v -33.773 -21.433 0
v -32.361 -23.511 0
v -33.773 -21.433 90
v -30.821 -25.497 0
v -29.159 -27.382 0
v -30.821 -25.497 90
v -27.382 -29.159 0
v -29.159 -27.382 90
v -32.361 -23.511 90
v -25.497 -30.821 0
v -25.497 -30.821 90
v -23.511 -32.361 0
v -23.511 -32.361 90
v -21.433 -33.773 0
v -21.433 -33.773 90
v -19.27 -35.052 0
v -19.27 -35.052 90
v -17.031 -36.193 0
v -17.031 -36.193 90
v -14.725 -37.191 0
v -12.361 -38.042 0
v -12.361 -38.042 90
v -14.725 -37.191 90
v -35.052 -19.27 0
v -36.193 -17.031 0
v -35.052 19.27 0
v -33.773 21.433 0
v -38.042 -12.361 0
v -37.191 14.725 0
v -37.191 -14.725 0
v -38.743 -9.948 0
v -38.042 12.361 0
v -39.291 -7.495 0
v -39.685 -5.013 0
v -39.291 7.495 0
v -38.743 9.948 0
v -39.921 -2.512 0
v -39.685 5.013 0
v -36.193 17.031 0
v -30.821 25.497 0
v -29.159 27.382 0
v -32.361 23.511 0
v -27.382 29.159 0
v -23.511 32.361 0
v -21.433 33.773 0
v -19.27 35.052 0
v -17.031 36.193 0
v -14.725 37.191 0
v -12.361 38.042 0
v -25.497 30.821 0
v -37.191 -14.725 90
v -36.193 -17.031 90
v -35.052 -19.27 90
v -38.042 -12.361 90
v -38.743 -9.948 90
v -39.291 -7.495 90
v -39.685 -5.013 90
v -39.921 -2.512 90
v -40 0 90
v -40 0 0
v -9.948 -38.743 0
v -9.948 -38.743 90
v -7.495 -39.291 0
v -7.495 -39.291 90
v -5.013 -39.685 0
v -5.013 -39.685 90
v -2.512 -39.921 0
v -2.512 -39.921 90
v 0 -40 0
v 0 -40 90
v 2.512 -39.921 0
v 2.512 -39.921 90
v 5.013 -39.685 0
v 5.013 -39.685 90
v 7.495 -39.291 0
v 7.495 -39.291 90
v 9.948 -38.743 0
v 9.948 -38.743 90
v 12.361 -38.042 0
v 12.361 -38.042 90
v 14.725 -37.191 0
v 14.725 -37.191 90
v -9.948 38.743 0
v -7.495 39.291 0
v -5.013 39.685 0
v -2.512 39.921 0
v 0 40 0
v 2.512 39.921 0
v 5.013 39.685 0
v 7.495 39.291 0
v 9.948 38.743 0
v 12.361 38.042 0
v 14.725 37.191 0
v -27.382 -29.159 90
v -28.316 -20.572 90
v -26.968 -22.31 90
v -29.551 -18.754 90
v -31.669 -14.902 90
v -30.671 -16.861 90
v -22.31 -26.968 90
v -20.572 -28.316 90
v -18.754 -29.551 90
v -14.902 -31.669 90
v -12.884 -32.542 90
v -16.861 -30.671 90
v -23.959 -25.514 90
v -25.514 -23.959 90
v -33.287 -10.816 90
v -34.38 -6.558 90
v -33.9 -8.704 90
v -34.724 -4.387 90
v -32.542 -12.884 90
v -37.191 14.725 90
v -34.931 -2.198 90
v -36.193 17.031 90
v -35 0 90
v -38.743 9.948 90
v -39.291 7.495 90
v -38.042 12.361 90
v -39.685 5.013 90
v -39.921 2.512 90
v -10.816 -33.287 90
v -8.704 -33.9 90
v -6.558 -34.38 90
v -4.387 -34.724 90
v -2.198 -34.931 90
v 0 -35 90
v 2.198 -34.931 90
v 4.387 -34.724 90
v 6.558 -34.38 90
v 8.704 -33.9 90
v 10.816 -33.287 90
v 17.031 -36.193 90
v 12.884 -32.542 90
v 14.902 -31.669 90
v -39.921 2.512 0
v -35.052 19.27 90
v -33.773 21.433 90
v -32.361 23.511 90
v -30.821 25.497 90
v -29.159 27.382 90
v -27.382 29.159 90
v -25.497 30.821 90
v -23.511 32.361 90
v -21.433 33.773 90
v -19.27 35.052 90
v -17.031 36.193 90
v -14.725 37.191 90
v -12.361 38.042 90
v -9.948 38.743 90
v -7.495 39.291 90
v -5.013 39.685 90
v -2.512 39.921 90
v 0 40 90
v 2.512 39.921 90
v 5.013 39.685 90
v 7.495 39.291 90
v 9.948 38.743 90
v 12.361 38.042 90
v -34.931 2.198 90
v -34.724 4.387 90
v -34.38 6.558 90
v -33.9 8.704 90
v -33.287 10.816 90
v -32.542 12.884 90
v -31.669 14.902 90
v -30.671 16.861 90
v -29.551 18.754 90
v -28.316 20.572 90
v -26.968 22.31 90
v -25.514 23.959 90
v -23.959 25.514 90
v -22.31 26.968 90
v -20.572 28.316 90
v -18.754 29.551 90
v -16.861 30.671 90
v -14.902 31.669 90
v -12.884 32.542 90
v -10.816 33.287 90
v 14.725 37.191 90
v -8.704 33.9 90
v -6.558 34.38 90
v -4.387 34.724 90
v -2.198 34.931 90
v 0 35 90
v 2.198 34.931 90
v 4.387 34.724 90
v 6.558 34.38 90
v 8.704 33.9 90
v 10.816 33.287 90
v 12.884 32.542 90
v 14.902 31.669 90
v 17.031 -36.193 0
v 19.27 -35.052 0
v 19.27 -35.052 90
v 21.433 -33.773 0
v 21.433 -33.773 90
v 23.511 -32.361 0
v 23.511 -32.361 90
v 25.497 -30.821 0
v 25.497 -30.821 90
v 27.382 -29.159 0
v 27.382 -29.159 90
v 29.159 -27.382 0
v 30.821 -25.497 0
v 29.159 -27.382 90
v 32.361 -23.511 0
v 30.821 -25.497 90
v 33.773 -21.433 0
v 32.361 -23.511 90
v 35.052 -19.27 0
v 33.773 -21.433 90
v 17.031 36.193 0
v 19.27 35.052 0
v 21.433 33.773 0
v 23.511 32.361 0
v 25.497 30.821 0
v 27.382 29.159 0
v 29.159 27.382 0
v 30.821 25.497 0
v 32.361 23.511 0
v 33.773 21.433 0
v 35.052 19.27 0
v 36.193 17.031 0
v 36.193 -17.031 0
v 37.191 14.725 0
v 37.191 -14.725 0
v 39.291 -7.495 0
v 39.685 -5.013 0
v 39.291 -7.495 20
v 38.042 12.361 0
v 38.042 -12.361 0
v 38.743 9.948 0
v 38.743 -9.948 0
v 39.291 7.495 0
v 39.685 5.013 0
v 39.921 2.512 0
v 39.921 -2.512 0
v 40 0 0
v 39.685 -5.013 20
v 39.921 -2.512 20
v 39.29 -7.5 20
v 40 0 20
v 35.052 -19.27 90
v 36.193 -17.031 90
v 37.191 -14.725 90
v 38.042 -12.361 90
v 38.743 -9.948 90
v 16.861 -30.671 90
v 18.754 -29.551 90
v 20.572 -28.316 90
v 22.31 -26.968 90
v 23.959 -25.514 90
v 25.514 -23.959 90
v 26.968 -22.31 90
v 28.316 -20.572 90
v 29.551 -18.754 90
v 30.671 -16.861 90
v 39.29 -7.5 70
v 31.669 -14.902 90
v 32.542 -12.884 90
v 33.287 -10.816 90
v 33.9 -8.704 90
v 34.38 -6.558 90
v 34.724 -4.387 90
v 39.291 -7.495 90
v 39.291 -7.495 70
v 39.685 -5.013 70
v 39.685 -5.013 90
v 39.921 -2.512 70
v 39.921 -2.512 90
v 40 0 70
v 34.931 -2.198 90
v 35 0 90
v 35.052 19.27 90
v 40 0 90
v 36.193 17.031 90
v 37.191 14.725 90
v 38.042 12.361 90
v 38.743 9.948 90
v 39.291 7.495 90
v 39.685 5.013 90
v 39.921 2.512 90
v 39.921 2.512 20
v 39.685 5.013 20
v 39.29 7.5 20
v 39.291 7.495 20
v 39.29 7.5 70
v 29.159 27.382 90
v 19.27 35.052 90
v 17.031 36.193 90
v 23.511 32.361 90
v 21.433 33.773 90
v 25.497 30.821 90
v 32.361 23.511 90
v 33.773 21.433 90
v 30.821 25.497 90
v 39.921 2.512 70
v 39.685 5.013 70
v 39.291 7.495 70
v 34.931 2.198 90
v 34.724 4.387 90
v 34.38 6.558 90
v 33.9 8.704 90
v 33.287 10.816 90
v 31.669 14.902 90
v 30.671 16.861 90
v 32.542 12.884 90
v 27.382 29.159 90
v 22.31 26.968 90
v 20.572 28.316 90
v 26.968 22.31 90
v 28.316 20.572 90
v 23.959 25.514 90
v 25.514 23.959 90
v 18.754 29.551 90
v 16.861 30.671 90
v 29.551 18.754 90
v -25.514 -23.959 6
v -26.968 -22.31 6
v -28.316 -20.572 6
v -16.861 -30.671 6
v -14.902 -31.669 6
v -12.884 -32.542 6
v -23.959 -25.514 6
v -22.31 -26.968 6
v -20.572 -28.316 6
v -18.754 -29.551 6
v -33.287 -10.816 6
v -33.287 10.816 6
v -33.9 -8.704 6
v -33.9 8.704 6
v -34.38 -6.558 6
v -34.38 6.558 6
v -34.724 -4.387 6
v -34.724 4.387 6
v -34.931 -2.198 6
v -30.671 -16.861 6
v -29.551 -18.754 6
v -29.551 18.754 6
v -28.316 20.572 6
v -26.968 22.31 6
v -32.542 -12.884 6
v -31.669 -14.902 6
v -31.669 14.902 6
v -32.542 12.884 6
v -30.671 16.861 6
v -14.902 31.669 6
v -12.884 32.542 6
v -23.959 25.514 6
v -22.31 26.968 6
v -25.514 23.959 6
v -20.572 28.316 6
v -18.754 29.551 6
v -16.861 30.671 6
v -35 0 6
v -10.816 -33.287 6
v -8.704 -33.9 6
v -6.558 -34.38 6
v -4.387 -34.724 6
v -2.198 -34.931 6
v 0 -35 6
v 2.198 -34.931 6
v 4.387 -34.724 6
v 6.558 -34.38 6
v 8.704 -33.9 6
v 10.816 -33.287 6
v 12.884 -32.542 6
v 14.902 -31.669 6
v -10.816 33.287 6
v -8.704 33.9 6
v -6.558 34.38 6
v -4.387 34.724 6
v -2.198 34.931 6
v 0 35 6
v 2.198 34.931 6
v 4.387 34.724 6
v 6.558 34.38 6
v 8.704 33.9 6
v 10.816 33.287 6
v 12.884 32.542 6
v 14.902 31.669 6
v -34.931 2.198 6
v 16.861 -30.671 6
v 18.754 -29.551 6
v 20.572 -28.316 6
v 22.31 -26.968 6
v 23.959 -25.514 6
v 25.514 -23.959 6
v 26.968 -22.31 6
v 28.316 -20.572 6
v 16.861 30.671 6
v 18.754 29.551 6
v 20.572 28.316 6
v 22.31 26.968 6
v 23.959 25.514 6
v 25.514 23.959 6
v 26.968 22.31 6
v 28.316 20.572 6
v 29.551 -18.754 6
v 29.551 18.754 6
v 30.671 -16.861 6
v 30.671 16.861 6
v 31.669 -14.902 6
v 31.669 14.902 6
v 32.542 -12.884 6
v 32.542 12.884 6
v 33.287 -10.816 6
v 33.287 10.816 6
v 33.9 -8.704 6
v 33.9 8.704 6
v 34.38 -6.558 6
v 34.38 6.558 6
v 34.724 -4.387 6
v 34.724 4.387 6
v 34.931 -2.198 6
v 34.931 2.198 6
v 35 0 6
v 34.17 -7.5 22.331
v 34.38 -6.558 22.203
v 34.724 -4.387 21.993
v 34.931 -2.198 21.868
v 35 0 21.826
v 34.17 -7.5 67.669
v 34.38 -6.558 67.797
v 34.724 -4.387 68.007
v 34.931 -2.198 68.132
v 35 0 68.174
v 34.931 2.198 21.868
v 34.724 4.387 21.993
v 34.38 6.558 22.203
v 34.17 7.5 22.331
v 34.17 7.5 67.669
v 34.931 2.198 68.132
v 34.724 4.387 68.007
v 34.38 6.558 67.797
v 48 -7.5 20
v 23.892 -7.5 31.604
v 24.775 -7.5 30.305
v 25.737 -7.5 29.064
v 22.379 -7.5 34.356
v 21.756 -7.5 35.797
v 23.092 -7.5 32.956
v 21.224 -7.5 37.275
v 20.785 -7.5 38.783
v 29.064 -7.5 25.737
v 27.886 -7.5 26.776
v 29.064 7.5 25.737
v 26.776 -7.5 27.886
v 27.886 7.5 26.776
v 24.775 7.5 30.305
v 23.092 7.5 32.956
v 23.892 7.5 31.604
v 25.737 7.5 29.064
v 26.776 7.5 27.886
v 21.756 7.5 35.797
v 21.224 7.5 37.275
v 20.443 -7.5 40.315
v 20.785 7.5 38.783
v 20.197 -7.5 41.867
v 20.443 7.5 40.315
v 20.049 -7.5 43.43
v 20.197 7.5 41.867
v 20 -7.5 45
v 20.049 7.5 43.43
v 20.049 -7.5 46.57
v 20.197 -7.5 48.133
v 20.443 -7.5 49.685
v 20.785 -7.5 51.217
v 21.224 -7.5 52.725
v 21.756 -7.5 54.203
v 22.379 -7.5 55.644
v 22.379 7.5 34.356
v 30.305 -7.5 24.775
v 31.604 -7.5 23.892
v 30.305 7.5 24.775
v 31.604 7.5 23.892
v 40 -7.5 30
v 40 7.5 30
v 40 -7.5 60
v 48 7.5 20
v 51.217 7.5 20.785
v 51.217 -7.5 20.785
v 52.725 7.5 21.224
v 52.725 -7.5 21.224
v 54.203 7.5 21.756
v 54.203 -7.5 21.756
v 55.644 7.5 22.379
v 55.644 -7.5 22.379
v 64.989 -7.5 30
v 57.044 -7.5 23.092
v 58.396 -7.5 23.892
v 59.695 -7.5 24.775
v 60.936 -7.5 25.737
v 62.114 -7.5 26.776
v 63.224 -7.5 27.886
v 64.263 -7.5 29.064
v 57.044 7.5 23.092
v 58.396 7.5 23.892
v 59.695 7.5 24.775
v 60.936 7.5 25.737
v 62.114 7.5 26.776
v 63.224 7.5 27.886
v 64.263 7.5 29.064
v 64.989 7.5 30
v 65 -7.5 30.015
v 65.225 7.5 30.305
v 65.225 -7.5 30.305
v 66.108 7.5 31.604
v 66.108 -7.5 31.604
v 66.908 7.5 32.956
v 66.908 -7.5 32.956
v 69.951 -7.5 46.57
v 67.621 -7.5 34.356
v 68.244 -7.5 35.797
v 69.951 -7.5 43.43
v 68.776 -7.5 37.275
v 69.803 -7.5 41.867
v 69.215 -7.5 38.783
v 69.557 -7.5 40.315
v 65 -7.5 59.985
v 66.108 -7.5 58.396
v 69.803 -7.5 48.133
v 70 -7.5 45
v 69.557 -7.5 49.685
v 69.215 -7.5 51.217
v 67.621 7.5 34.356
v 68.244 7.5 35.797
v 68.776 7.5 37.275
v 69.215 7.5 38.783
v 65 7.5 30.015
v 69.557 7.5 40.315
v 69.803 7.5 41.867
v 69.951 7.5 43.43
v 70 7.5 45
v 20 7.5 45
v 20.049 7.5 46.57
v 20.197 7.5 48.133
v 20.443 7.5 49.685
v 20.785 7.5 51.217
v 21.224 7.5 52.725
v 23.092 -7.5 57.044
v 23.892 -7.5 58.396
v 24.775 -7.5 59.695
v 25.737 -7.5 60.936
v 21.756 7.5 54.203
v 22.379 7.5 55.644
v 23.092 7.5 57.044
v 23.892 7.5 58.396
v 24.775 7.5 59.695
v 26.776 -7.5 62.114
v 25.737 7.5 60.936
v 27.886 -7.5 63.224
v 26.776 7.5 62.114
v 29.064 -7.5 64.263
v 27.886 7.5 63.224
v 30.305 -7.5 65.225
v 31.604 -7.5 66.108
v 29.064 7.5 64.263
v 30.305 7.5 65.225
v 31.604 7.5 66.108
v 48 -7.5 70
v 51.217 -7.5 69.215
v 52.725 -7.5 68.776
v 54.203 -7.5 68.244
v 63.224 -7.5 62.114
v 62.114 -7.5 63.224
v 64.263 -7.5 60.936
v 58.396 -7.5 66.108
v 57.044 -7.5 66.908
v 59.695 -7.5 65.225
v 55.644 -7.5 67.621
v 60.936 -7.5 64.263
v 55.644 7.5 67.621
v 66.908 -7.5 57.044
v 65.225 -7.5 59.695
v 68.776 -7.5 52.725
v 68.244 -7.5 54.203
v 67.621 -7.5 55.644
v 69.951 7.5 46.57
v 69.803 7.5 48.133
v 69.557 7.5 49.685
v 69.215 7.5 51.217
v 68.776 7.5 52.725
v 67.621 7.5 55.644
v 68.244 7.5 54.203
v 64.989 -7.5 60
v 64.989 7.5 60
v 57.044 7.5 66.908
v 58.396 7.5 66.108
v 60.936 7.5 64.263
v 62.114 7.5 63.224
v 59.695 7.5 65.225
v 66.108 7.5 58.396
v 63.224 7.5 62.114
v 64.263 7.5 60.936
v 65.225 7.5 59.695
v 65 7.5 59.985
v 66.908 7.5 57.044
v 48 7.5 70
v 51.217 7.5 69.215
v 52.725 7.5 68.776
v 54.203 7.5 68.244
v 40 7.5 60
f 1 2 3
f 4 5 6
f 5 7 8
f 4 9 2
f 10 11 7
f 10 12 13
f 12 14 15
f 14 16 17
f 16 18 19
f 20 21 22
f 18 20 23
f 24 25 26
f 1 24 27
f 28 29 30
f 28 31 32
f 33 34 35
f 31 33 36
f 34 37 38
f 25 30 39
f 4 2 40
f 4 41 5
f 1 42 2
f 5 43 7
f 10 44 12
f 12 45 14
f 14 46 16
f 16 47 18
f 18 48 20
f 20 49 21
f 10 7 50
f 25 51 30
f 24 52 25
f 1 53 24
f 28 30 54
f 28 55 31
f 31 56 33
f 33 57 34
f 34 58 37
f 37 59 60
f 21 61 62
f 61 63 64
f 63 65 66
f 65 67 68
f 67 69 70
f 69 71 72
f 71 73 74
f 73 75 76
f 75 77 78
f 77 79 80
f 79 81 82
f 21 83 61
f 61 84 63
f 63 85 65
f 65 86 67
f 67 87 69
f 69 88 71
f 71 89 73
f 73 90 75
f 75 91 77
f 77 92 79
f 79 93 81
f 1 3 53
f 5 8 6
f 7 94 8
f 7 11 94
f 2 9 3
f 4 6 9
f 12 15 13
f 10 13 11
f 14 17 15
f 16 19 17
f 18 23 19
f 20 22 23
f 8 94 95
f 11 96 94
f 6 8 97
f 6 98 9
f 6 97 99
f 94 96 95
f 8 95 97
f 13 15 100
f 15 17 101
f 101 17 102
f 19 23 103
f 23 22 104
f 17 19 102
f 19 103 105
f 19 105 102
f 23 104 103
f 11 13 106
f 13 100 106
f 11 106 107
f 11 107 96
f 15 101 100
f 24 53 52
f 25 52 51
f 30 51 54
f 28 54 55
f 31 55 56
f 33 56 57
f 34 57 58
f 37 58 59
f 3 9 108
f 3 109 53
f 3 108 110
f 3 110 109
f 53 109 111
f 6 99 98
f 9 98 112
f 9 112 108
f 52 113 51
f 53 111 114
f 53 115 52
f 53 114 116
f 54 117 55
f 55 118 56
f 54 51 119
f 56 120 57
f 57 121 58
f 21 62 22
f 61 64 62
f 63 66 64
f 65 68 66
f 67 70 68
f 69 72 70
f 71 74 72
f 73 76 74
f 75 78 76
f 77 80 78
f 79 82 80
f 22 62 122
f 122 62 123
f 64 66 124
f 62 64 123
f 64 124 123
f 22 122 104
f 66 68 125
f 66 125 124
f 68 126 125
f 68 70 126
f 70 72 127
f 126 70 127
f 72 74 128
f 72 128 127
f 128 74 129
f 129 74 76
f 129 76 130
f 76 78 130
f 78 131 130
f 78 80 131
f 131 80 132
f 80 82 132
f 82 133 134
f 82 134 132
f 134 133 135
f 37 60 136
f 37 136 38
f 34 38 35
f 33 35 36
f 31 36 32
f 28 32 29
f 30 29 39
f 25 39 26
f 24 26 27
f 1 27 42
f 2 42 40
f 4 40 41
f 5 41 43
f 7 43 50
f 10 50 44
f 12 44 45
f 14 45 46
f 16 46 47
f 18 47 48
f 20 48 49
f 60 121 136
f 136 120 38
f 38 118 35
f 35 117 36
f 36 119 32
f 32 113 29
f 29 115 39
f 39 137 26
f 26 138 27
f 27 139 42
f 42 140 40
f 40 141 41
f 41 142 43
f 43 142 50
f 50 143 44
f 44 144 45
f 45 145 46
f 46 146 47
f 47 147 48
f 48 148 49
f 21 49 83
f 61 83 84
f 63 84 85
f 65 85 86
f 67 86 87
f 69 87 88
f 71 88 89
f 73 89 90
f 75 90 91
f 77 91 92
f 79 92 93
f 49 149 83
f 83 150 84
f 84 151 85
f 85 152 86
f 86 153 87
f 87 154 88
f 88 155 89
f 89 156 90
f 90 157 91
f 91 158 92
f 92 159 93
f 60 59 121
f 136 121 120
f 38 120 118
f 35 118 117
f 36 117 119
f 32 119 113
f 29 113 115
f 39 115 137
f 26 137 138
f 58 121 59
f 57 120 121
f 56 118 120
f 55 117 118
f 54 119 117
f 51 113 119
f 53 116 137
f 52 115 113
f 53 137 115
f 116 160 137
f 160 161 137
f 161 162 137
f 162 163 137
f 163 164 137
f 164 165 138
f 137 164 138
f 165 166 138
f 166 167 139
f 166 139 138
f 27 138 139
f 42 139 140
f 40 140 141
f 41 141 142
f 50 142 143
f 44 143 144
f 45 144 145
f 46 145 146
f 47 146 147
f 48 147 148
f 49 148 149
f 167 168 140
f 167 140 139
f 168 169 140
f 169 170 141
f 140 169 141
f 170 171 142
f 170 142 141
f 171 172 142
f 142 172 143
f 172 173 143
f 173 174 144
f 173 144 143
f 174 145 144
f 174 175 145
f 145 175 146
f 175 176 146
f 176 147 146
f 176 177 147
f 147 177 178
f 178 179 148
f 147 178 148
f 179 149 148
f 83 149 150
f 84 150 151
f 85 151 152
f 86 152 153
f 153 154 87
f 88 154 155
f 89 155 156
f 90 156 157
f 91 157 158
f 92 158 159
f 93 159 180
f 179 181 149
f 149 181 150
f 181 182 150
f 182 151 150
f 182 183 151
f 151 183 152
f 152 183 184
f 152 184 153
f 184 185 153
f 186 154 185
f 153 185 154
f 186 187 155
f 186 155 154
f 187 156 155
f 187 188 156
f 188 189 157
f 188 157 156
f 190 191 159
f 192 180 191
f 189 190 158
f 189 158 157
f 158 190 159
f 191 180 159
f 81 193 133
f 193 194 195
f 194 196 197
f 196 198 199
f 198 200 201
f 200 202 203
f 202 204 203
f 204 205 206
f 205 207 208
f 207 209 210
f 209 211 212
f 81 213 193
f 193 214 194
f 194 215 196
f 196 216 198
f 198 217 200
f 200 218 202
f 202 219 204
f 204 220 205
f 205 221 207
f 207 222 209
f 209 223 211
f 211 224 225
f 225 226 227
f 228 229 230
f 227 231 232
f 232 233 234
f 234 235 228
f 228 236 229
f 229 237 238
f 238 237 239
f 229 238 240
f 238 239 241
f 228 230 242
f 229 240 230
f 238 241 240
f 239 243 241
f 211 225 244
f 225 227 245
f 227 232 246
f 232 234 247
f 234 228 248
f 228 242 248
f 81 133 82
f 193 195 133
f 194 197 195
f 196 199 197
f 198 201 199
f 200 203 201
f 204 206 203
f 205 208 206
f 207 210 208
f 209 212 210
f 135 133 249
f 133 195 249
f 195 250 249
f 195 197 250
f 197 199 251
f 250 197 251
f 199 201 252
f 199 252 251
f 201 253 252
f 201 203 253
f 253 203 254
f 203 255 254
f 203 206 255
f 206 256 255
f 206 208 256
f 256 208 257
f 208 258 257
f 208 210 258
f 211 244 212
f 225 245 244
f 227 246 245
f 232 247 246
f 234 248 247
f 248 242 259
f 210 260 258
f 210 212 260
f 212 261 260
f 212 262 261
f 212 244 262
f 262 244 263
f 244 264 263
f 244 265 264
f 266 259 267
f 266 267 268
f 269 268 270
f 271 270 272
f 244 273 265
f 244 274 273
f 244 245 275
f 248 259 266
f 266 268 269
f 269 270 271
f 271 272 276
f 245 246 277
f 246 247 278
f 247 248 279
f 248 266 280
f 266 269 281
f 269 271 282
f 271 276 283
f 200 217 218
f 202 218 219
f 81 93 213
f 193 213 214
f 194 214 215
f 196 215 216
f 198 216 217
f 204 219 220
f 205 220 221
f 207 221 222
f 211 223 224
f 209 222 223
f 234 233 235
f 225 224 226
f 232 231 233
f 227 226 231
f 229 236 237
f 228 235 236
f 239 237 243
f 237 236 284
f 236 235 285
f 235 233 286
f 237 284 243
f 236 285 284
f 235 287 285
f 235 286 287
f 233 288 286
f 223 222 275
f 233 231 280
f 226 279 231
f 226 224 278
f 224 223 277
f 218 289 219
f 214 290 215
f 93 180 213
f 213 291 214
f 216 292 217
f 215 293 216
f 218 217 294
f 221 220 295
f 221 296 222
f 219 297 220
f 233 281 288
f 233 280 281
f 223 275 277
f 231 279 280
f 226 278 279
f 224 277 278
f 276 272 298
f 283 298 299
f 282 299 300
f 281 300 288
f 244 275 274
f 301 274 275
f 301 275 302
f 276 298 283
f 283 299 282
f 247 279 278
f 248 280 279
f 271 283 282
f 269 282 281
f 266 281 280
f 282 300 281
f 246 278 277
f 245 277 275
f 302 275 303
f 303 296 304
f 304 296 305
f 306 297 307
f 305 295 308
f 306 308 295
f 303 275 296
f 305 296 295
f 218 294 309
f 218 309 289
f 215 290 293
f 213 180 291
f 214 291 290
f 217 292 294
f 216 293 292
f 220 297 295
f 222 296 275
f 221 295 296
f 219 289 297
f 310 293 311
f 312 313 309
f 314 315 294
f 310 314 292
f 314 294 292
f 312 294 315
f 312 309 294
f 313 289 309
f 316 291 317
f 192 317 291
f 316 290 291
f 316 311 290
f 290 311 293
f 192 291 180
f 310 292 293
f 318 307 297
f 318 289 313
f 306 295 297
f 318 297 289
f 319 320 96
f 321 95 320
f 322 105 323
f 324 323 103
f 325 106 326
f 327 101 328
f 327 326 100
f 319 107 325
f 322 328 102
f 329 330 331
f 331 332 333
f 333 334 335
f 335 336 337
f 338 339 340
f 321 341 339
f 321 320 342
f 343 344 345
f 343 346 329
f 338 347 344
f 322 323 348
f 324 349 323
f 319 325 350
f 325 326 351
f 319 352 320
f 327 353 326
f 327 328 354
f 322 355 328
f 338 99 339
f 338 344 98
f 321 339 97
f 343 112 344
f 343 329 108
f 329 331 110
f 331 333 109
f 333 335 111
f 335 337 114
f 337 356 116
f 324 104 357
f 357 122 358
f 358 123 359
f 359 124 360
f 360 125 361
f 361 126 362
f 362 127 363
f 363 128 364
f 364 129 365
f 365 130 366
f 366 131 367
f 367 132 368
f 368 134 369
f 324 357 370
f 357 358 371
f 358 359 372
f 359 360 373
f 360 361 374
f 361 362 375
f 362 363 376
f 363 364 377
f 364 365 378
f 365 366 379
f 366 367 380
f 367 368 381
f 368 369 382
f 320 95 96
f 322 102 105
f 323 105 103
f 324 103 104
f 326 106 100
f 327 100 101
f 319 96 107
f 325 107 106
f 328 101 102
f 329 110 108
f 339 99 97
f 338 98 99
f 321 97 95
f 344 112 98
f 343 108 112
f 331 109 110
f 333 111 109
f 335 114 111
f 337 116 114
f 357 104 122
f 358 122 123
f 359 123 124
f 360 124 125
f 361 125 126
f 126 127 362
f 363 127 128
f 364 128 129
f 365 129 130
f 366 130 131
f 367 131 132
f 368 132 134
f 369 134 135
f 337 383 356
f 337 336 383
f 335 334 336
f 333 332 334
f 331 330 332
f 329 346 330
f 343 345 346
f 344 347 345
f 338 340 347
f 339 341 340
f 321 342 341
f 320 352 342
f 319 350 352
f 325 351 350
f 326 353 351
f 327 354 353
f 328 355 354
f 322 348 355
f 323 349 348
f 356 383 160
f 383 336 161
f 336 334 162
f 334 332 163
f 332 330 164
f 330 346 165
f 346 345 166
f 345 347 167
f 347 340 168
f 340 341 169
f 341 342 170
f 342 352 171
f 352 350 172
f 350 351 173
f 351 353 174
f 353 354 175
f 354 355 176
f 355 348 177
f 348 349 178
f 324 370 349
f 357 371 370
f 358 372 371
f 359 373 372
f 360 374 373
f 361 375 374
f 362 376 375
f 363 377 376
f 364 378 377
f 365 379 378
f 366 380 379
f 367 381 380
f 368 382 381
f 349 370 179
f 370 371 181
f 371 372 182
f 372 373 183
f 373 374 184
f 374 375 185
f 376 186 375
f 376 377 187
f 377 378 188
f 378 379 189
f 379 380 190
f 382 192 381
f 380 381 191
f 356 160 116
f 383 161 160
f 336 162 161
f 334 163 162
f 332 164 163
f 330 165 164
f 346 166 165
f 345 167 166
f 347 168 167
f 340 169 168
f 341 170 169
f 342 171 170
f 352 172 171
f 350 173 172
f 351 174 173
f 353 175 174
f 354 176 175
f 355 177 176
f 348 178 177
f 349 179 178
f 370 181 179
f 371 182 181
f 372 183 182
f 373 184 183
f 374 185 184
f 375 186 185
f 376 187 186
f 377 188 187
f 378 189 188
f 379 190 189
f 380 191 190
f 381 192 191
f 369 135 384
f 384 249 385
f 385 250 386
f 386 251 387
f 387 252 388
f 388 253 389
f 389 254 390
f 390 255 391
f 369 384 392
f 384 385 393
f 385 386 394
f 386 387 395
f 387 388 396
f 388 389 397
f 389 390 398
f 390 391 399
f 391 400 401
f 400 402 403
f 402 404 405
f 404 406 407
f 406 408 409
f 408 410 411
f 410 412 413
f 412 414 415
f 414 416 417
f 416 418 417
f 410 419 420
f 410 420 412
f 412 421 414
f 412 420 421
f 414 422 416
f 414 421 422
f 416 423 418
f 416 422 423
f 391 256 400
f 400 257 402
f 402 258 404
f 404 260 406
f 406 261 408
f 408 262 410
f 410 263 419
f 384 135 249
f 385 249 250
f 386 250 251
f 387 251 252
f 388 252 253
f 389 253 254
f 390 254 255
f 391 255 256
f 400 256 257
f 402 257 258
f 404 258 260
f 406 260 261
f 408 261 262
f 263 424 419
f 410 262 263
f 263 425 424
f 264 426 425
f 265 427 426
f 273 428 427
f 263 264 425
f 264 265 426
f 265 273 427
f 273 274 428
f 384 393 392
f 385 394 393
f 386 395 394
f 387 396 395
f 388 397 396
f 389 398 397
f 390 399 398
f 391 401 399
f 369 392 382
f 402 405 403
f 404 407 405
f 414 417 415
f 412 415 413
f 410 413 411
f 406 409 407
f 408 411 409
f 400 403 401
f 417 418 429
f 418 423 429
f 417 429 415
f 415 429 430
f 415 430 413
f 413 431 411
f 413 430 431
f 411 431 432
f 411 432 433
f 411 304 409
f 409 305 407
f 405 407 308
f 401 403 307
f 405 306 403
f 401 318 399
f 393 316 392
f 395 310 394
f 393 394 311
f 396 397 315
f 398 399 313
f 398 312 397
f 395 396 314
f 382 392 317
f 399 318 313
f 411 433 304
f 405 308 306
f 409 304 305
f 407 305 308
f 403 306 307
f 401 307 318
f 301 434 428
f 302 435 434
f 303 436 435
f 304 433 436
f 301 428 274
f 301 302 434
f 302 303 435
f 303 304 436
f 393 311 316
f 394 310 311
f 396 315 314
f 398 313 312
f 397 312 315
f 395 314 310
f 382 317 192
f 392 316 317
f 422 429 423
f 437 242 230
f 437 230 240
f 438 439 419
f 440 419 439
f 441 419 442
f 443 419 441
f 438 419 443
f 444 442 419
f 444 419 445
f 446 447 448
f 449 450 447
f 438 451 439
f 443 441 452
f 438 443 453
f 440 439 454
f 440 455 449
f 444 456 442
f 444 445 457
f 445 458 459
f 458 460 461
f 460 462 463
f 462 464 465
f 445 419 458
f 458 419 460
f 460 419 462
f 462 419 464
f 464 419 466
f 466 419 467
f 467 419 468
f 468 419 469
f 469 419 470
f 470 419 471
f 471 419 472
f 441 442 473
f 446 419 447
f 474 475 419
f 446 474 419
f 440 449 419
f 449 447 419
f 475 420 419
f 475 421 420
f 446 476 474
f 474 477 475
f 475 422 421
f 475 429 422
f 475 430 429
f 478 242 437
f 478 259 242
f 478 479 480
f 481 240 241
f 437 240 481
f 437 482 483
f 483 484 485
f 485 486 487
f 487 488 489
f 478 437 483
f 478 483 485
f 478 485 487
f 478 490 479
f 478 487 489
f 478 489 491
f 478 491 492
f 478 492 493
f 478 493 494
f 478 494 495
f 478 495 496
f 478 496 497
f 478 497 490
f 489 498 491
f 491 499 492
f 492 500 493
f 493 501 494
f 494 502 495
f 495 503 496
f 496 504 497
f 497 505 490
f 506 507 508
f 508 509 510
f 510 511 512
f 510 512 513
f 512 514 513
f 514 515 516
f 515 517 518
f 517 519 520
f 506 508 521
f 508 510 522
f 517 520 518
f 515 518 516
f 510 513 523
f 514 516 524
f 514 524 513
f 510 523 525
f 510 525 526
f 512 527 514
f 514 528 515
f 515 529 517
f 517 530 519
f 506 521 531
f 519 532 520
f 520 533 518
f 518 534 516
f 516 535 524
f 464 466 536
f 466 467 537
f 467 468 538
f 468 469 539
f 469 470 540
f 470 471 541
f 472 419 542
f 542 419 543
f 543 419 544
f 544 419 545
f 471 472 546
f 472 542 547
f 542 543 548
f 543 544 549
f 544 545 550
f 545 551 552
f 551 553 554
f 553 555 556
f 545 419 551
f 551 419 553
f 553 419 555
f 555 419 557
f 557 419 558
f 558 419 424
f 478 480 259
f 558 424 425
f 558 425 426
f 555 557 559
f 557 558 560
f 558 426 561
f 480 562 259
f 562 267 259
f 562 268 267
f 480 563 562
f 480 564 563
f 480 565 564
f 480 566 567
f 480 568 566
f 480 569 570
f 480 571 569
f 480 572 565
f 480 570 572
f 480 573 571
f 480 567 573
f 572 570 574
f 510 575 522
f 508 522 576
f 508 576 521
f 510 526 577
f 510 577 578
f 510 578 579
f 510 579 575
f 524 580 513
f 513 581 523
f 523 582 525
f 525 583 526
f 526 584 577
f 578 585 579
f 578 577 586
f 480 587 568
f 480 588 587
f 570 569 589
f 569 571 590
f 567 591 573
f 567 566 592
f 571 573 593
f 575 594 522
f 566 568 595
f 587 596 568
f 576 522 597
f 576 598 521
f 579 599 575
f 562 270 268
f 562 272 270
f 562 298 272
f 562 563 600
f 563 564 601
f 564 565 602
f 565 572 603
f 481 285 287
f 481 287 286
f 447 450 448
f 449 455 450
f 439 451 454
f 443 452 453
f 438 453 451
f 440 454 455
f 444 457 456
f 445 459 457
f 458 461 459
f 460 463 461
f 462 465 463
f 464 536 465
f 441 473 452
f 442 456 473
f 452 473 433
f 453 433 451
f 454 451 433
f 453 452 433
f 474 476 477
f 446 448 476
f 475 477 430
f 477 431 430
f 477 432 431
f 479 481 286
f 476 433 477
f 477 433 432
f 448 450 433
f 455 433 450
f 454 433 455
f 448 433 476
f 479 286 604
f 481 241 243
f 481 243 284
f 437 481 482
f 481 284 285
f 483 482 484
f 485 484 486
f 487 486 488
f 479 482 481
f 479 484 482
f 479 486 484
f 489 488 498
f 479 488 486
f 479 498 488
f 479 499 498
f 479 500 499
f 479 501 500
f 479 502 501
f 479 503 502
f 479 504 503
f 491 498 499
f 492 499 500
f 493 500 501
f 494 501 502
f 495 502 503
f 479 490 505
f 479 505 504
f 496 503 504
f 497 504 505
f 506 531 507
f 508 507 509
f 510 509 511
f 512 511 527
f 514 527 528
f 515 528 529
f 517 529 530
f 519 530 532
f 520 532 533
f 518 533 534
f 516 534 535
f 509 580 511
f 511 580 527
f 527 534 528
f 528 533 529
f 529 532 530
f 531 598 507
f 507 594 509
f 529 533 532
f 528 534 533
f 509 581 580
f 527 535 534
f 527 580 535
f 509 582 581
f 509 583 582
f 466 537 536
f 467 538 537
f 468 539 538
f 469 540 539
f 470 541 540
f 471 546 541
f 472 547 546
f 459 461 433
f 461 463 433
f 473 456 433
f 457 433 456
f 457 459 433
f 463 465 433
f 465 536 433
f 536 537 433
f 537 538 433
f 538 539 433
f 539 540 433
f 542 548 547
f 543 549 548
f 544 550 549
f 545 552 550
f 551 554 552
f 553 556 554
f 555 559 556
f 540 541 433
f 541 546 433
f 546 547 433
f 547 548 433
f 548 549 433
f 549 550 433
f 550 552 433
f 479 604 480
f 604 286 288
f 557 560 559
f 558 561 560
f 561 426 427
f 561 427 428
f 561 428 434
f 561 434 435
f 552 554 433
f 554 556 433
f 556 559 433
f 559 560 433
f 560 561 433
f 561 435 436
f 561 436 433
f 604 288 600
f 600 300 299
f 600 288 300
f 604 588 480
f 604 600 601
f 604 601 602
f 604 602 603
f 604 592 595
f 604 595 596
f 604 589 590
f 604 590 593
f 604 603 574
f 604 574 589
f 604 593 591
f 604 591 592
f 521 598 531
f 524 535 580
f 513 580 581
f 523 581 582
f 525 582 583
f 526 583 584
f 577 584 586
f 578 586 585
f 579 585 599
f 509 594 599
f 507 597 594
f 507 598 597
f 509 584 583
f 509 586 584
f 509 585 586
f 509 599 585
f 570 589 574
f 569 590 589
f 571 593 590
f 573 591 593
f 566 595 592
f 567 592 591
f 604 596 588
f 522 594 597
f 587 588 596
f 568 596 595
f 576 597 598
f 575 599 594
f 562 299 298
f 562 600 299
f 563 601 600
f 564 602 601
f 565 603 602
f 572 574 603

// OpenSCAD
$fn = 100;

union() {
    // 本体 (Mug Body)
    difference() {
        cylinder(h=90, r=40);
        translate([0, 0, 6])
            cylinder(h=90, r=35);
    }

    // 取手 (Handle) - +X軸方向
    rotate([90, 0, 0])
    linear_extrude(height=15, center=true)
    difference() {
        // 取手の外形 (D字形状: 外側が半円、本体側が直線)
        hull() {
            translate([38, 20]) square([10, 50]);
            translate([45, 45]) circle(r=25);
        }
        // 取手の内側空間 (高さ30mm × 幅25mm)
        translate([40, 30]) square([25, 30]);
    }
}
